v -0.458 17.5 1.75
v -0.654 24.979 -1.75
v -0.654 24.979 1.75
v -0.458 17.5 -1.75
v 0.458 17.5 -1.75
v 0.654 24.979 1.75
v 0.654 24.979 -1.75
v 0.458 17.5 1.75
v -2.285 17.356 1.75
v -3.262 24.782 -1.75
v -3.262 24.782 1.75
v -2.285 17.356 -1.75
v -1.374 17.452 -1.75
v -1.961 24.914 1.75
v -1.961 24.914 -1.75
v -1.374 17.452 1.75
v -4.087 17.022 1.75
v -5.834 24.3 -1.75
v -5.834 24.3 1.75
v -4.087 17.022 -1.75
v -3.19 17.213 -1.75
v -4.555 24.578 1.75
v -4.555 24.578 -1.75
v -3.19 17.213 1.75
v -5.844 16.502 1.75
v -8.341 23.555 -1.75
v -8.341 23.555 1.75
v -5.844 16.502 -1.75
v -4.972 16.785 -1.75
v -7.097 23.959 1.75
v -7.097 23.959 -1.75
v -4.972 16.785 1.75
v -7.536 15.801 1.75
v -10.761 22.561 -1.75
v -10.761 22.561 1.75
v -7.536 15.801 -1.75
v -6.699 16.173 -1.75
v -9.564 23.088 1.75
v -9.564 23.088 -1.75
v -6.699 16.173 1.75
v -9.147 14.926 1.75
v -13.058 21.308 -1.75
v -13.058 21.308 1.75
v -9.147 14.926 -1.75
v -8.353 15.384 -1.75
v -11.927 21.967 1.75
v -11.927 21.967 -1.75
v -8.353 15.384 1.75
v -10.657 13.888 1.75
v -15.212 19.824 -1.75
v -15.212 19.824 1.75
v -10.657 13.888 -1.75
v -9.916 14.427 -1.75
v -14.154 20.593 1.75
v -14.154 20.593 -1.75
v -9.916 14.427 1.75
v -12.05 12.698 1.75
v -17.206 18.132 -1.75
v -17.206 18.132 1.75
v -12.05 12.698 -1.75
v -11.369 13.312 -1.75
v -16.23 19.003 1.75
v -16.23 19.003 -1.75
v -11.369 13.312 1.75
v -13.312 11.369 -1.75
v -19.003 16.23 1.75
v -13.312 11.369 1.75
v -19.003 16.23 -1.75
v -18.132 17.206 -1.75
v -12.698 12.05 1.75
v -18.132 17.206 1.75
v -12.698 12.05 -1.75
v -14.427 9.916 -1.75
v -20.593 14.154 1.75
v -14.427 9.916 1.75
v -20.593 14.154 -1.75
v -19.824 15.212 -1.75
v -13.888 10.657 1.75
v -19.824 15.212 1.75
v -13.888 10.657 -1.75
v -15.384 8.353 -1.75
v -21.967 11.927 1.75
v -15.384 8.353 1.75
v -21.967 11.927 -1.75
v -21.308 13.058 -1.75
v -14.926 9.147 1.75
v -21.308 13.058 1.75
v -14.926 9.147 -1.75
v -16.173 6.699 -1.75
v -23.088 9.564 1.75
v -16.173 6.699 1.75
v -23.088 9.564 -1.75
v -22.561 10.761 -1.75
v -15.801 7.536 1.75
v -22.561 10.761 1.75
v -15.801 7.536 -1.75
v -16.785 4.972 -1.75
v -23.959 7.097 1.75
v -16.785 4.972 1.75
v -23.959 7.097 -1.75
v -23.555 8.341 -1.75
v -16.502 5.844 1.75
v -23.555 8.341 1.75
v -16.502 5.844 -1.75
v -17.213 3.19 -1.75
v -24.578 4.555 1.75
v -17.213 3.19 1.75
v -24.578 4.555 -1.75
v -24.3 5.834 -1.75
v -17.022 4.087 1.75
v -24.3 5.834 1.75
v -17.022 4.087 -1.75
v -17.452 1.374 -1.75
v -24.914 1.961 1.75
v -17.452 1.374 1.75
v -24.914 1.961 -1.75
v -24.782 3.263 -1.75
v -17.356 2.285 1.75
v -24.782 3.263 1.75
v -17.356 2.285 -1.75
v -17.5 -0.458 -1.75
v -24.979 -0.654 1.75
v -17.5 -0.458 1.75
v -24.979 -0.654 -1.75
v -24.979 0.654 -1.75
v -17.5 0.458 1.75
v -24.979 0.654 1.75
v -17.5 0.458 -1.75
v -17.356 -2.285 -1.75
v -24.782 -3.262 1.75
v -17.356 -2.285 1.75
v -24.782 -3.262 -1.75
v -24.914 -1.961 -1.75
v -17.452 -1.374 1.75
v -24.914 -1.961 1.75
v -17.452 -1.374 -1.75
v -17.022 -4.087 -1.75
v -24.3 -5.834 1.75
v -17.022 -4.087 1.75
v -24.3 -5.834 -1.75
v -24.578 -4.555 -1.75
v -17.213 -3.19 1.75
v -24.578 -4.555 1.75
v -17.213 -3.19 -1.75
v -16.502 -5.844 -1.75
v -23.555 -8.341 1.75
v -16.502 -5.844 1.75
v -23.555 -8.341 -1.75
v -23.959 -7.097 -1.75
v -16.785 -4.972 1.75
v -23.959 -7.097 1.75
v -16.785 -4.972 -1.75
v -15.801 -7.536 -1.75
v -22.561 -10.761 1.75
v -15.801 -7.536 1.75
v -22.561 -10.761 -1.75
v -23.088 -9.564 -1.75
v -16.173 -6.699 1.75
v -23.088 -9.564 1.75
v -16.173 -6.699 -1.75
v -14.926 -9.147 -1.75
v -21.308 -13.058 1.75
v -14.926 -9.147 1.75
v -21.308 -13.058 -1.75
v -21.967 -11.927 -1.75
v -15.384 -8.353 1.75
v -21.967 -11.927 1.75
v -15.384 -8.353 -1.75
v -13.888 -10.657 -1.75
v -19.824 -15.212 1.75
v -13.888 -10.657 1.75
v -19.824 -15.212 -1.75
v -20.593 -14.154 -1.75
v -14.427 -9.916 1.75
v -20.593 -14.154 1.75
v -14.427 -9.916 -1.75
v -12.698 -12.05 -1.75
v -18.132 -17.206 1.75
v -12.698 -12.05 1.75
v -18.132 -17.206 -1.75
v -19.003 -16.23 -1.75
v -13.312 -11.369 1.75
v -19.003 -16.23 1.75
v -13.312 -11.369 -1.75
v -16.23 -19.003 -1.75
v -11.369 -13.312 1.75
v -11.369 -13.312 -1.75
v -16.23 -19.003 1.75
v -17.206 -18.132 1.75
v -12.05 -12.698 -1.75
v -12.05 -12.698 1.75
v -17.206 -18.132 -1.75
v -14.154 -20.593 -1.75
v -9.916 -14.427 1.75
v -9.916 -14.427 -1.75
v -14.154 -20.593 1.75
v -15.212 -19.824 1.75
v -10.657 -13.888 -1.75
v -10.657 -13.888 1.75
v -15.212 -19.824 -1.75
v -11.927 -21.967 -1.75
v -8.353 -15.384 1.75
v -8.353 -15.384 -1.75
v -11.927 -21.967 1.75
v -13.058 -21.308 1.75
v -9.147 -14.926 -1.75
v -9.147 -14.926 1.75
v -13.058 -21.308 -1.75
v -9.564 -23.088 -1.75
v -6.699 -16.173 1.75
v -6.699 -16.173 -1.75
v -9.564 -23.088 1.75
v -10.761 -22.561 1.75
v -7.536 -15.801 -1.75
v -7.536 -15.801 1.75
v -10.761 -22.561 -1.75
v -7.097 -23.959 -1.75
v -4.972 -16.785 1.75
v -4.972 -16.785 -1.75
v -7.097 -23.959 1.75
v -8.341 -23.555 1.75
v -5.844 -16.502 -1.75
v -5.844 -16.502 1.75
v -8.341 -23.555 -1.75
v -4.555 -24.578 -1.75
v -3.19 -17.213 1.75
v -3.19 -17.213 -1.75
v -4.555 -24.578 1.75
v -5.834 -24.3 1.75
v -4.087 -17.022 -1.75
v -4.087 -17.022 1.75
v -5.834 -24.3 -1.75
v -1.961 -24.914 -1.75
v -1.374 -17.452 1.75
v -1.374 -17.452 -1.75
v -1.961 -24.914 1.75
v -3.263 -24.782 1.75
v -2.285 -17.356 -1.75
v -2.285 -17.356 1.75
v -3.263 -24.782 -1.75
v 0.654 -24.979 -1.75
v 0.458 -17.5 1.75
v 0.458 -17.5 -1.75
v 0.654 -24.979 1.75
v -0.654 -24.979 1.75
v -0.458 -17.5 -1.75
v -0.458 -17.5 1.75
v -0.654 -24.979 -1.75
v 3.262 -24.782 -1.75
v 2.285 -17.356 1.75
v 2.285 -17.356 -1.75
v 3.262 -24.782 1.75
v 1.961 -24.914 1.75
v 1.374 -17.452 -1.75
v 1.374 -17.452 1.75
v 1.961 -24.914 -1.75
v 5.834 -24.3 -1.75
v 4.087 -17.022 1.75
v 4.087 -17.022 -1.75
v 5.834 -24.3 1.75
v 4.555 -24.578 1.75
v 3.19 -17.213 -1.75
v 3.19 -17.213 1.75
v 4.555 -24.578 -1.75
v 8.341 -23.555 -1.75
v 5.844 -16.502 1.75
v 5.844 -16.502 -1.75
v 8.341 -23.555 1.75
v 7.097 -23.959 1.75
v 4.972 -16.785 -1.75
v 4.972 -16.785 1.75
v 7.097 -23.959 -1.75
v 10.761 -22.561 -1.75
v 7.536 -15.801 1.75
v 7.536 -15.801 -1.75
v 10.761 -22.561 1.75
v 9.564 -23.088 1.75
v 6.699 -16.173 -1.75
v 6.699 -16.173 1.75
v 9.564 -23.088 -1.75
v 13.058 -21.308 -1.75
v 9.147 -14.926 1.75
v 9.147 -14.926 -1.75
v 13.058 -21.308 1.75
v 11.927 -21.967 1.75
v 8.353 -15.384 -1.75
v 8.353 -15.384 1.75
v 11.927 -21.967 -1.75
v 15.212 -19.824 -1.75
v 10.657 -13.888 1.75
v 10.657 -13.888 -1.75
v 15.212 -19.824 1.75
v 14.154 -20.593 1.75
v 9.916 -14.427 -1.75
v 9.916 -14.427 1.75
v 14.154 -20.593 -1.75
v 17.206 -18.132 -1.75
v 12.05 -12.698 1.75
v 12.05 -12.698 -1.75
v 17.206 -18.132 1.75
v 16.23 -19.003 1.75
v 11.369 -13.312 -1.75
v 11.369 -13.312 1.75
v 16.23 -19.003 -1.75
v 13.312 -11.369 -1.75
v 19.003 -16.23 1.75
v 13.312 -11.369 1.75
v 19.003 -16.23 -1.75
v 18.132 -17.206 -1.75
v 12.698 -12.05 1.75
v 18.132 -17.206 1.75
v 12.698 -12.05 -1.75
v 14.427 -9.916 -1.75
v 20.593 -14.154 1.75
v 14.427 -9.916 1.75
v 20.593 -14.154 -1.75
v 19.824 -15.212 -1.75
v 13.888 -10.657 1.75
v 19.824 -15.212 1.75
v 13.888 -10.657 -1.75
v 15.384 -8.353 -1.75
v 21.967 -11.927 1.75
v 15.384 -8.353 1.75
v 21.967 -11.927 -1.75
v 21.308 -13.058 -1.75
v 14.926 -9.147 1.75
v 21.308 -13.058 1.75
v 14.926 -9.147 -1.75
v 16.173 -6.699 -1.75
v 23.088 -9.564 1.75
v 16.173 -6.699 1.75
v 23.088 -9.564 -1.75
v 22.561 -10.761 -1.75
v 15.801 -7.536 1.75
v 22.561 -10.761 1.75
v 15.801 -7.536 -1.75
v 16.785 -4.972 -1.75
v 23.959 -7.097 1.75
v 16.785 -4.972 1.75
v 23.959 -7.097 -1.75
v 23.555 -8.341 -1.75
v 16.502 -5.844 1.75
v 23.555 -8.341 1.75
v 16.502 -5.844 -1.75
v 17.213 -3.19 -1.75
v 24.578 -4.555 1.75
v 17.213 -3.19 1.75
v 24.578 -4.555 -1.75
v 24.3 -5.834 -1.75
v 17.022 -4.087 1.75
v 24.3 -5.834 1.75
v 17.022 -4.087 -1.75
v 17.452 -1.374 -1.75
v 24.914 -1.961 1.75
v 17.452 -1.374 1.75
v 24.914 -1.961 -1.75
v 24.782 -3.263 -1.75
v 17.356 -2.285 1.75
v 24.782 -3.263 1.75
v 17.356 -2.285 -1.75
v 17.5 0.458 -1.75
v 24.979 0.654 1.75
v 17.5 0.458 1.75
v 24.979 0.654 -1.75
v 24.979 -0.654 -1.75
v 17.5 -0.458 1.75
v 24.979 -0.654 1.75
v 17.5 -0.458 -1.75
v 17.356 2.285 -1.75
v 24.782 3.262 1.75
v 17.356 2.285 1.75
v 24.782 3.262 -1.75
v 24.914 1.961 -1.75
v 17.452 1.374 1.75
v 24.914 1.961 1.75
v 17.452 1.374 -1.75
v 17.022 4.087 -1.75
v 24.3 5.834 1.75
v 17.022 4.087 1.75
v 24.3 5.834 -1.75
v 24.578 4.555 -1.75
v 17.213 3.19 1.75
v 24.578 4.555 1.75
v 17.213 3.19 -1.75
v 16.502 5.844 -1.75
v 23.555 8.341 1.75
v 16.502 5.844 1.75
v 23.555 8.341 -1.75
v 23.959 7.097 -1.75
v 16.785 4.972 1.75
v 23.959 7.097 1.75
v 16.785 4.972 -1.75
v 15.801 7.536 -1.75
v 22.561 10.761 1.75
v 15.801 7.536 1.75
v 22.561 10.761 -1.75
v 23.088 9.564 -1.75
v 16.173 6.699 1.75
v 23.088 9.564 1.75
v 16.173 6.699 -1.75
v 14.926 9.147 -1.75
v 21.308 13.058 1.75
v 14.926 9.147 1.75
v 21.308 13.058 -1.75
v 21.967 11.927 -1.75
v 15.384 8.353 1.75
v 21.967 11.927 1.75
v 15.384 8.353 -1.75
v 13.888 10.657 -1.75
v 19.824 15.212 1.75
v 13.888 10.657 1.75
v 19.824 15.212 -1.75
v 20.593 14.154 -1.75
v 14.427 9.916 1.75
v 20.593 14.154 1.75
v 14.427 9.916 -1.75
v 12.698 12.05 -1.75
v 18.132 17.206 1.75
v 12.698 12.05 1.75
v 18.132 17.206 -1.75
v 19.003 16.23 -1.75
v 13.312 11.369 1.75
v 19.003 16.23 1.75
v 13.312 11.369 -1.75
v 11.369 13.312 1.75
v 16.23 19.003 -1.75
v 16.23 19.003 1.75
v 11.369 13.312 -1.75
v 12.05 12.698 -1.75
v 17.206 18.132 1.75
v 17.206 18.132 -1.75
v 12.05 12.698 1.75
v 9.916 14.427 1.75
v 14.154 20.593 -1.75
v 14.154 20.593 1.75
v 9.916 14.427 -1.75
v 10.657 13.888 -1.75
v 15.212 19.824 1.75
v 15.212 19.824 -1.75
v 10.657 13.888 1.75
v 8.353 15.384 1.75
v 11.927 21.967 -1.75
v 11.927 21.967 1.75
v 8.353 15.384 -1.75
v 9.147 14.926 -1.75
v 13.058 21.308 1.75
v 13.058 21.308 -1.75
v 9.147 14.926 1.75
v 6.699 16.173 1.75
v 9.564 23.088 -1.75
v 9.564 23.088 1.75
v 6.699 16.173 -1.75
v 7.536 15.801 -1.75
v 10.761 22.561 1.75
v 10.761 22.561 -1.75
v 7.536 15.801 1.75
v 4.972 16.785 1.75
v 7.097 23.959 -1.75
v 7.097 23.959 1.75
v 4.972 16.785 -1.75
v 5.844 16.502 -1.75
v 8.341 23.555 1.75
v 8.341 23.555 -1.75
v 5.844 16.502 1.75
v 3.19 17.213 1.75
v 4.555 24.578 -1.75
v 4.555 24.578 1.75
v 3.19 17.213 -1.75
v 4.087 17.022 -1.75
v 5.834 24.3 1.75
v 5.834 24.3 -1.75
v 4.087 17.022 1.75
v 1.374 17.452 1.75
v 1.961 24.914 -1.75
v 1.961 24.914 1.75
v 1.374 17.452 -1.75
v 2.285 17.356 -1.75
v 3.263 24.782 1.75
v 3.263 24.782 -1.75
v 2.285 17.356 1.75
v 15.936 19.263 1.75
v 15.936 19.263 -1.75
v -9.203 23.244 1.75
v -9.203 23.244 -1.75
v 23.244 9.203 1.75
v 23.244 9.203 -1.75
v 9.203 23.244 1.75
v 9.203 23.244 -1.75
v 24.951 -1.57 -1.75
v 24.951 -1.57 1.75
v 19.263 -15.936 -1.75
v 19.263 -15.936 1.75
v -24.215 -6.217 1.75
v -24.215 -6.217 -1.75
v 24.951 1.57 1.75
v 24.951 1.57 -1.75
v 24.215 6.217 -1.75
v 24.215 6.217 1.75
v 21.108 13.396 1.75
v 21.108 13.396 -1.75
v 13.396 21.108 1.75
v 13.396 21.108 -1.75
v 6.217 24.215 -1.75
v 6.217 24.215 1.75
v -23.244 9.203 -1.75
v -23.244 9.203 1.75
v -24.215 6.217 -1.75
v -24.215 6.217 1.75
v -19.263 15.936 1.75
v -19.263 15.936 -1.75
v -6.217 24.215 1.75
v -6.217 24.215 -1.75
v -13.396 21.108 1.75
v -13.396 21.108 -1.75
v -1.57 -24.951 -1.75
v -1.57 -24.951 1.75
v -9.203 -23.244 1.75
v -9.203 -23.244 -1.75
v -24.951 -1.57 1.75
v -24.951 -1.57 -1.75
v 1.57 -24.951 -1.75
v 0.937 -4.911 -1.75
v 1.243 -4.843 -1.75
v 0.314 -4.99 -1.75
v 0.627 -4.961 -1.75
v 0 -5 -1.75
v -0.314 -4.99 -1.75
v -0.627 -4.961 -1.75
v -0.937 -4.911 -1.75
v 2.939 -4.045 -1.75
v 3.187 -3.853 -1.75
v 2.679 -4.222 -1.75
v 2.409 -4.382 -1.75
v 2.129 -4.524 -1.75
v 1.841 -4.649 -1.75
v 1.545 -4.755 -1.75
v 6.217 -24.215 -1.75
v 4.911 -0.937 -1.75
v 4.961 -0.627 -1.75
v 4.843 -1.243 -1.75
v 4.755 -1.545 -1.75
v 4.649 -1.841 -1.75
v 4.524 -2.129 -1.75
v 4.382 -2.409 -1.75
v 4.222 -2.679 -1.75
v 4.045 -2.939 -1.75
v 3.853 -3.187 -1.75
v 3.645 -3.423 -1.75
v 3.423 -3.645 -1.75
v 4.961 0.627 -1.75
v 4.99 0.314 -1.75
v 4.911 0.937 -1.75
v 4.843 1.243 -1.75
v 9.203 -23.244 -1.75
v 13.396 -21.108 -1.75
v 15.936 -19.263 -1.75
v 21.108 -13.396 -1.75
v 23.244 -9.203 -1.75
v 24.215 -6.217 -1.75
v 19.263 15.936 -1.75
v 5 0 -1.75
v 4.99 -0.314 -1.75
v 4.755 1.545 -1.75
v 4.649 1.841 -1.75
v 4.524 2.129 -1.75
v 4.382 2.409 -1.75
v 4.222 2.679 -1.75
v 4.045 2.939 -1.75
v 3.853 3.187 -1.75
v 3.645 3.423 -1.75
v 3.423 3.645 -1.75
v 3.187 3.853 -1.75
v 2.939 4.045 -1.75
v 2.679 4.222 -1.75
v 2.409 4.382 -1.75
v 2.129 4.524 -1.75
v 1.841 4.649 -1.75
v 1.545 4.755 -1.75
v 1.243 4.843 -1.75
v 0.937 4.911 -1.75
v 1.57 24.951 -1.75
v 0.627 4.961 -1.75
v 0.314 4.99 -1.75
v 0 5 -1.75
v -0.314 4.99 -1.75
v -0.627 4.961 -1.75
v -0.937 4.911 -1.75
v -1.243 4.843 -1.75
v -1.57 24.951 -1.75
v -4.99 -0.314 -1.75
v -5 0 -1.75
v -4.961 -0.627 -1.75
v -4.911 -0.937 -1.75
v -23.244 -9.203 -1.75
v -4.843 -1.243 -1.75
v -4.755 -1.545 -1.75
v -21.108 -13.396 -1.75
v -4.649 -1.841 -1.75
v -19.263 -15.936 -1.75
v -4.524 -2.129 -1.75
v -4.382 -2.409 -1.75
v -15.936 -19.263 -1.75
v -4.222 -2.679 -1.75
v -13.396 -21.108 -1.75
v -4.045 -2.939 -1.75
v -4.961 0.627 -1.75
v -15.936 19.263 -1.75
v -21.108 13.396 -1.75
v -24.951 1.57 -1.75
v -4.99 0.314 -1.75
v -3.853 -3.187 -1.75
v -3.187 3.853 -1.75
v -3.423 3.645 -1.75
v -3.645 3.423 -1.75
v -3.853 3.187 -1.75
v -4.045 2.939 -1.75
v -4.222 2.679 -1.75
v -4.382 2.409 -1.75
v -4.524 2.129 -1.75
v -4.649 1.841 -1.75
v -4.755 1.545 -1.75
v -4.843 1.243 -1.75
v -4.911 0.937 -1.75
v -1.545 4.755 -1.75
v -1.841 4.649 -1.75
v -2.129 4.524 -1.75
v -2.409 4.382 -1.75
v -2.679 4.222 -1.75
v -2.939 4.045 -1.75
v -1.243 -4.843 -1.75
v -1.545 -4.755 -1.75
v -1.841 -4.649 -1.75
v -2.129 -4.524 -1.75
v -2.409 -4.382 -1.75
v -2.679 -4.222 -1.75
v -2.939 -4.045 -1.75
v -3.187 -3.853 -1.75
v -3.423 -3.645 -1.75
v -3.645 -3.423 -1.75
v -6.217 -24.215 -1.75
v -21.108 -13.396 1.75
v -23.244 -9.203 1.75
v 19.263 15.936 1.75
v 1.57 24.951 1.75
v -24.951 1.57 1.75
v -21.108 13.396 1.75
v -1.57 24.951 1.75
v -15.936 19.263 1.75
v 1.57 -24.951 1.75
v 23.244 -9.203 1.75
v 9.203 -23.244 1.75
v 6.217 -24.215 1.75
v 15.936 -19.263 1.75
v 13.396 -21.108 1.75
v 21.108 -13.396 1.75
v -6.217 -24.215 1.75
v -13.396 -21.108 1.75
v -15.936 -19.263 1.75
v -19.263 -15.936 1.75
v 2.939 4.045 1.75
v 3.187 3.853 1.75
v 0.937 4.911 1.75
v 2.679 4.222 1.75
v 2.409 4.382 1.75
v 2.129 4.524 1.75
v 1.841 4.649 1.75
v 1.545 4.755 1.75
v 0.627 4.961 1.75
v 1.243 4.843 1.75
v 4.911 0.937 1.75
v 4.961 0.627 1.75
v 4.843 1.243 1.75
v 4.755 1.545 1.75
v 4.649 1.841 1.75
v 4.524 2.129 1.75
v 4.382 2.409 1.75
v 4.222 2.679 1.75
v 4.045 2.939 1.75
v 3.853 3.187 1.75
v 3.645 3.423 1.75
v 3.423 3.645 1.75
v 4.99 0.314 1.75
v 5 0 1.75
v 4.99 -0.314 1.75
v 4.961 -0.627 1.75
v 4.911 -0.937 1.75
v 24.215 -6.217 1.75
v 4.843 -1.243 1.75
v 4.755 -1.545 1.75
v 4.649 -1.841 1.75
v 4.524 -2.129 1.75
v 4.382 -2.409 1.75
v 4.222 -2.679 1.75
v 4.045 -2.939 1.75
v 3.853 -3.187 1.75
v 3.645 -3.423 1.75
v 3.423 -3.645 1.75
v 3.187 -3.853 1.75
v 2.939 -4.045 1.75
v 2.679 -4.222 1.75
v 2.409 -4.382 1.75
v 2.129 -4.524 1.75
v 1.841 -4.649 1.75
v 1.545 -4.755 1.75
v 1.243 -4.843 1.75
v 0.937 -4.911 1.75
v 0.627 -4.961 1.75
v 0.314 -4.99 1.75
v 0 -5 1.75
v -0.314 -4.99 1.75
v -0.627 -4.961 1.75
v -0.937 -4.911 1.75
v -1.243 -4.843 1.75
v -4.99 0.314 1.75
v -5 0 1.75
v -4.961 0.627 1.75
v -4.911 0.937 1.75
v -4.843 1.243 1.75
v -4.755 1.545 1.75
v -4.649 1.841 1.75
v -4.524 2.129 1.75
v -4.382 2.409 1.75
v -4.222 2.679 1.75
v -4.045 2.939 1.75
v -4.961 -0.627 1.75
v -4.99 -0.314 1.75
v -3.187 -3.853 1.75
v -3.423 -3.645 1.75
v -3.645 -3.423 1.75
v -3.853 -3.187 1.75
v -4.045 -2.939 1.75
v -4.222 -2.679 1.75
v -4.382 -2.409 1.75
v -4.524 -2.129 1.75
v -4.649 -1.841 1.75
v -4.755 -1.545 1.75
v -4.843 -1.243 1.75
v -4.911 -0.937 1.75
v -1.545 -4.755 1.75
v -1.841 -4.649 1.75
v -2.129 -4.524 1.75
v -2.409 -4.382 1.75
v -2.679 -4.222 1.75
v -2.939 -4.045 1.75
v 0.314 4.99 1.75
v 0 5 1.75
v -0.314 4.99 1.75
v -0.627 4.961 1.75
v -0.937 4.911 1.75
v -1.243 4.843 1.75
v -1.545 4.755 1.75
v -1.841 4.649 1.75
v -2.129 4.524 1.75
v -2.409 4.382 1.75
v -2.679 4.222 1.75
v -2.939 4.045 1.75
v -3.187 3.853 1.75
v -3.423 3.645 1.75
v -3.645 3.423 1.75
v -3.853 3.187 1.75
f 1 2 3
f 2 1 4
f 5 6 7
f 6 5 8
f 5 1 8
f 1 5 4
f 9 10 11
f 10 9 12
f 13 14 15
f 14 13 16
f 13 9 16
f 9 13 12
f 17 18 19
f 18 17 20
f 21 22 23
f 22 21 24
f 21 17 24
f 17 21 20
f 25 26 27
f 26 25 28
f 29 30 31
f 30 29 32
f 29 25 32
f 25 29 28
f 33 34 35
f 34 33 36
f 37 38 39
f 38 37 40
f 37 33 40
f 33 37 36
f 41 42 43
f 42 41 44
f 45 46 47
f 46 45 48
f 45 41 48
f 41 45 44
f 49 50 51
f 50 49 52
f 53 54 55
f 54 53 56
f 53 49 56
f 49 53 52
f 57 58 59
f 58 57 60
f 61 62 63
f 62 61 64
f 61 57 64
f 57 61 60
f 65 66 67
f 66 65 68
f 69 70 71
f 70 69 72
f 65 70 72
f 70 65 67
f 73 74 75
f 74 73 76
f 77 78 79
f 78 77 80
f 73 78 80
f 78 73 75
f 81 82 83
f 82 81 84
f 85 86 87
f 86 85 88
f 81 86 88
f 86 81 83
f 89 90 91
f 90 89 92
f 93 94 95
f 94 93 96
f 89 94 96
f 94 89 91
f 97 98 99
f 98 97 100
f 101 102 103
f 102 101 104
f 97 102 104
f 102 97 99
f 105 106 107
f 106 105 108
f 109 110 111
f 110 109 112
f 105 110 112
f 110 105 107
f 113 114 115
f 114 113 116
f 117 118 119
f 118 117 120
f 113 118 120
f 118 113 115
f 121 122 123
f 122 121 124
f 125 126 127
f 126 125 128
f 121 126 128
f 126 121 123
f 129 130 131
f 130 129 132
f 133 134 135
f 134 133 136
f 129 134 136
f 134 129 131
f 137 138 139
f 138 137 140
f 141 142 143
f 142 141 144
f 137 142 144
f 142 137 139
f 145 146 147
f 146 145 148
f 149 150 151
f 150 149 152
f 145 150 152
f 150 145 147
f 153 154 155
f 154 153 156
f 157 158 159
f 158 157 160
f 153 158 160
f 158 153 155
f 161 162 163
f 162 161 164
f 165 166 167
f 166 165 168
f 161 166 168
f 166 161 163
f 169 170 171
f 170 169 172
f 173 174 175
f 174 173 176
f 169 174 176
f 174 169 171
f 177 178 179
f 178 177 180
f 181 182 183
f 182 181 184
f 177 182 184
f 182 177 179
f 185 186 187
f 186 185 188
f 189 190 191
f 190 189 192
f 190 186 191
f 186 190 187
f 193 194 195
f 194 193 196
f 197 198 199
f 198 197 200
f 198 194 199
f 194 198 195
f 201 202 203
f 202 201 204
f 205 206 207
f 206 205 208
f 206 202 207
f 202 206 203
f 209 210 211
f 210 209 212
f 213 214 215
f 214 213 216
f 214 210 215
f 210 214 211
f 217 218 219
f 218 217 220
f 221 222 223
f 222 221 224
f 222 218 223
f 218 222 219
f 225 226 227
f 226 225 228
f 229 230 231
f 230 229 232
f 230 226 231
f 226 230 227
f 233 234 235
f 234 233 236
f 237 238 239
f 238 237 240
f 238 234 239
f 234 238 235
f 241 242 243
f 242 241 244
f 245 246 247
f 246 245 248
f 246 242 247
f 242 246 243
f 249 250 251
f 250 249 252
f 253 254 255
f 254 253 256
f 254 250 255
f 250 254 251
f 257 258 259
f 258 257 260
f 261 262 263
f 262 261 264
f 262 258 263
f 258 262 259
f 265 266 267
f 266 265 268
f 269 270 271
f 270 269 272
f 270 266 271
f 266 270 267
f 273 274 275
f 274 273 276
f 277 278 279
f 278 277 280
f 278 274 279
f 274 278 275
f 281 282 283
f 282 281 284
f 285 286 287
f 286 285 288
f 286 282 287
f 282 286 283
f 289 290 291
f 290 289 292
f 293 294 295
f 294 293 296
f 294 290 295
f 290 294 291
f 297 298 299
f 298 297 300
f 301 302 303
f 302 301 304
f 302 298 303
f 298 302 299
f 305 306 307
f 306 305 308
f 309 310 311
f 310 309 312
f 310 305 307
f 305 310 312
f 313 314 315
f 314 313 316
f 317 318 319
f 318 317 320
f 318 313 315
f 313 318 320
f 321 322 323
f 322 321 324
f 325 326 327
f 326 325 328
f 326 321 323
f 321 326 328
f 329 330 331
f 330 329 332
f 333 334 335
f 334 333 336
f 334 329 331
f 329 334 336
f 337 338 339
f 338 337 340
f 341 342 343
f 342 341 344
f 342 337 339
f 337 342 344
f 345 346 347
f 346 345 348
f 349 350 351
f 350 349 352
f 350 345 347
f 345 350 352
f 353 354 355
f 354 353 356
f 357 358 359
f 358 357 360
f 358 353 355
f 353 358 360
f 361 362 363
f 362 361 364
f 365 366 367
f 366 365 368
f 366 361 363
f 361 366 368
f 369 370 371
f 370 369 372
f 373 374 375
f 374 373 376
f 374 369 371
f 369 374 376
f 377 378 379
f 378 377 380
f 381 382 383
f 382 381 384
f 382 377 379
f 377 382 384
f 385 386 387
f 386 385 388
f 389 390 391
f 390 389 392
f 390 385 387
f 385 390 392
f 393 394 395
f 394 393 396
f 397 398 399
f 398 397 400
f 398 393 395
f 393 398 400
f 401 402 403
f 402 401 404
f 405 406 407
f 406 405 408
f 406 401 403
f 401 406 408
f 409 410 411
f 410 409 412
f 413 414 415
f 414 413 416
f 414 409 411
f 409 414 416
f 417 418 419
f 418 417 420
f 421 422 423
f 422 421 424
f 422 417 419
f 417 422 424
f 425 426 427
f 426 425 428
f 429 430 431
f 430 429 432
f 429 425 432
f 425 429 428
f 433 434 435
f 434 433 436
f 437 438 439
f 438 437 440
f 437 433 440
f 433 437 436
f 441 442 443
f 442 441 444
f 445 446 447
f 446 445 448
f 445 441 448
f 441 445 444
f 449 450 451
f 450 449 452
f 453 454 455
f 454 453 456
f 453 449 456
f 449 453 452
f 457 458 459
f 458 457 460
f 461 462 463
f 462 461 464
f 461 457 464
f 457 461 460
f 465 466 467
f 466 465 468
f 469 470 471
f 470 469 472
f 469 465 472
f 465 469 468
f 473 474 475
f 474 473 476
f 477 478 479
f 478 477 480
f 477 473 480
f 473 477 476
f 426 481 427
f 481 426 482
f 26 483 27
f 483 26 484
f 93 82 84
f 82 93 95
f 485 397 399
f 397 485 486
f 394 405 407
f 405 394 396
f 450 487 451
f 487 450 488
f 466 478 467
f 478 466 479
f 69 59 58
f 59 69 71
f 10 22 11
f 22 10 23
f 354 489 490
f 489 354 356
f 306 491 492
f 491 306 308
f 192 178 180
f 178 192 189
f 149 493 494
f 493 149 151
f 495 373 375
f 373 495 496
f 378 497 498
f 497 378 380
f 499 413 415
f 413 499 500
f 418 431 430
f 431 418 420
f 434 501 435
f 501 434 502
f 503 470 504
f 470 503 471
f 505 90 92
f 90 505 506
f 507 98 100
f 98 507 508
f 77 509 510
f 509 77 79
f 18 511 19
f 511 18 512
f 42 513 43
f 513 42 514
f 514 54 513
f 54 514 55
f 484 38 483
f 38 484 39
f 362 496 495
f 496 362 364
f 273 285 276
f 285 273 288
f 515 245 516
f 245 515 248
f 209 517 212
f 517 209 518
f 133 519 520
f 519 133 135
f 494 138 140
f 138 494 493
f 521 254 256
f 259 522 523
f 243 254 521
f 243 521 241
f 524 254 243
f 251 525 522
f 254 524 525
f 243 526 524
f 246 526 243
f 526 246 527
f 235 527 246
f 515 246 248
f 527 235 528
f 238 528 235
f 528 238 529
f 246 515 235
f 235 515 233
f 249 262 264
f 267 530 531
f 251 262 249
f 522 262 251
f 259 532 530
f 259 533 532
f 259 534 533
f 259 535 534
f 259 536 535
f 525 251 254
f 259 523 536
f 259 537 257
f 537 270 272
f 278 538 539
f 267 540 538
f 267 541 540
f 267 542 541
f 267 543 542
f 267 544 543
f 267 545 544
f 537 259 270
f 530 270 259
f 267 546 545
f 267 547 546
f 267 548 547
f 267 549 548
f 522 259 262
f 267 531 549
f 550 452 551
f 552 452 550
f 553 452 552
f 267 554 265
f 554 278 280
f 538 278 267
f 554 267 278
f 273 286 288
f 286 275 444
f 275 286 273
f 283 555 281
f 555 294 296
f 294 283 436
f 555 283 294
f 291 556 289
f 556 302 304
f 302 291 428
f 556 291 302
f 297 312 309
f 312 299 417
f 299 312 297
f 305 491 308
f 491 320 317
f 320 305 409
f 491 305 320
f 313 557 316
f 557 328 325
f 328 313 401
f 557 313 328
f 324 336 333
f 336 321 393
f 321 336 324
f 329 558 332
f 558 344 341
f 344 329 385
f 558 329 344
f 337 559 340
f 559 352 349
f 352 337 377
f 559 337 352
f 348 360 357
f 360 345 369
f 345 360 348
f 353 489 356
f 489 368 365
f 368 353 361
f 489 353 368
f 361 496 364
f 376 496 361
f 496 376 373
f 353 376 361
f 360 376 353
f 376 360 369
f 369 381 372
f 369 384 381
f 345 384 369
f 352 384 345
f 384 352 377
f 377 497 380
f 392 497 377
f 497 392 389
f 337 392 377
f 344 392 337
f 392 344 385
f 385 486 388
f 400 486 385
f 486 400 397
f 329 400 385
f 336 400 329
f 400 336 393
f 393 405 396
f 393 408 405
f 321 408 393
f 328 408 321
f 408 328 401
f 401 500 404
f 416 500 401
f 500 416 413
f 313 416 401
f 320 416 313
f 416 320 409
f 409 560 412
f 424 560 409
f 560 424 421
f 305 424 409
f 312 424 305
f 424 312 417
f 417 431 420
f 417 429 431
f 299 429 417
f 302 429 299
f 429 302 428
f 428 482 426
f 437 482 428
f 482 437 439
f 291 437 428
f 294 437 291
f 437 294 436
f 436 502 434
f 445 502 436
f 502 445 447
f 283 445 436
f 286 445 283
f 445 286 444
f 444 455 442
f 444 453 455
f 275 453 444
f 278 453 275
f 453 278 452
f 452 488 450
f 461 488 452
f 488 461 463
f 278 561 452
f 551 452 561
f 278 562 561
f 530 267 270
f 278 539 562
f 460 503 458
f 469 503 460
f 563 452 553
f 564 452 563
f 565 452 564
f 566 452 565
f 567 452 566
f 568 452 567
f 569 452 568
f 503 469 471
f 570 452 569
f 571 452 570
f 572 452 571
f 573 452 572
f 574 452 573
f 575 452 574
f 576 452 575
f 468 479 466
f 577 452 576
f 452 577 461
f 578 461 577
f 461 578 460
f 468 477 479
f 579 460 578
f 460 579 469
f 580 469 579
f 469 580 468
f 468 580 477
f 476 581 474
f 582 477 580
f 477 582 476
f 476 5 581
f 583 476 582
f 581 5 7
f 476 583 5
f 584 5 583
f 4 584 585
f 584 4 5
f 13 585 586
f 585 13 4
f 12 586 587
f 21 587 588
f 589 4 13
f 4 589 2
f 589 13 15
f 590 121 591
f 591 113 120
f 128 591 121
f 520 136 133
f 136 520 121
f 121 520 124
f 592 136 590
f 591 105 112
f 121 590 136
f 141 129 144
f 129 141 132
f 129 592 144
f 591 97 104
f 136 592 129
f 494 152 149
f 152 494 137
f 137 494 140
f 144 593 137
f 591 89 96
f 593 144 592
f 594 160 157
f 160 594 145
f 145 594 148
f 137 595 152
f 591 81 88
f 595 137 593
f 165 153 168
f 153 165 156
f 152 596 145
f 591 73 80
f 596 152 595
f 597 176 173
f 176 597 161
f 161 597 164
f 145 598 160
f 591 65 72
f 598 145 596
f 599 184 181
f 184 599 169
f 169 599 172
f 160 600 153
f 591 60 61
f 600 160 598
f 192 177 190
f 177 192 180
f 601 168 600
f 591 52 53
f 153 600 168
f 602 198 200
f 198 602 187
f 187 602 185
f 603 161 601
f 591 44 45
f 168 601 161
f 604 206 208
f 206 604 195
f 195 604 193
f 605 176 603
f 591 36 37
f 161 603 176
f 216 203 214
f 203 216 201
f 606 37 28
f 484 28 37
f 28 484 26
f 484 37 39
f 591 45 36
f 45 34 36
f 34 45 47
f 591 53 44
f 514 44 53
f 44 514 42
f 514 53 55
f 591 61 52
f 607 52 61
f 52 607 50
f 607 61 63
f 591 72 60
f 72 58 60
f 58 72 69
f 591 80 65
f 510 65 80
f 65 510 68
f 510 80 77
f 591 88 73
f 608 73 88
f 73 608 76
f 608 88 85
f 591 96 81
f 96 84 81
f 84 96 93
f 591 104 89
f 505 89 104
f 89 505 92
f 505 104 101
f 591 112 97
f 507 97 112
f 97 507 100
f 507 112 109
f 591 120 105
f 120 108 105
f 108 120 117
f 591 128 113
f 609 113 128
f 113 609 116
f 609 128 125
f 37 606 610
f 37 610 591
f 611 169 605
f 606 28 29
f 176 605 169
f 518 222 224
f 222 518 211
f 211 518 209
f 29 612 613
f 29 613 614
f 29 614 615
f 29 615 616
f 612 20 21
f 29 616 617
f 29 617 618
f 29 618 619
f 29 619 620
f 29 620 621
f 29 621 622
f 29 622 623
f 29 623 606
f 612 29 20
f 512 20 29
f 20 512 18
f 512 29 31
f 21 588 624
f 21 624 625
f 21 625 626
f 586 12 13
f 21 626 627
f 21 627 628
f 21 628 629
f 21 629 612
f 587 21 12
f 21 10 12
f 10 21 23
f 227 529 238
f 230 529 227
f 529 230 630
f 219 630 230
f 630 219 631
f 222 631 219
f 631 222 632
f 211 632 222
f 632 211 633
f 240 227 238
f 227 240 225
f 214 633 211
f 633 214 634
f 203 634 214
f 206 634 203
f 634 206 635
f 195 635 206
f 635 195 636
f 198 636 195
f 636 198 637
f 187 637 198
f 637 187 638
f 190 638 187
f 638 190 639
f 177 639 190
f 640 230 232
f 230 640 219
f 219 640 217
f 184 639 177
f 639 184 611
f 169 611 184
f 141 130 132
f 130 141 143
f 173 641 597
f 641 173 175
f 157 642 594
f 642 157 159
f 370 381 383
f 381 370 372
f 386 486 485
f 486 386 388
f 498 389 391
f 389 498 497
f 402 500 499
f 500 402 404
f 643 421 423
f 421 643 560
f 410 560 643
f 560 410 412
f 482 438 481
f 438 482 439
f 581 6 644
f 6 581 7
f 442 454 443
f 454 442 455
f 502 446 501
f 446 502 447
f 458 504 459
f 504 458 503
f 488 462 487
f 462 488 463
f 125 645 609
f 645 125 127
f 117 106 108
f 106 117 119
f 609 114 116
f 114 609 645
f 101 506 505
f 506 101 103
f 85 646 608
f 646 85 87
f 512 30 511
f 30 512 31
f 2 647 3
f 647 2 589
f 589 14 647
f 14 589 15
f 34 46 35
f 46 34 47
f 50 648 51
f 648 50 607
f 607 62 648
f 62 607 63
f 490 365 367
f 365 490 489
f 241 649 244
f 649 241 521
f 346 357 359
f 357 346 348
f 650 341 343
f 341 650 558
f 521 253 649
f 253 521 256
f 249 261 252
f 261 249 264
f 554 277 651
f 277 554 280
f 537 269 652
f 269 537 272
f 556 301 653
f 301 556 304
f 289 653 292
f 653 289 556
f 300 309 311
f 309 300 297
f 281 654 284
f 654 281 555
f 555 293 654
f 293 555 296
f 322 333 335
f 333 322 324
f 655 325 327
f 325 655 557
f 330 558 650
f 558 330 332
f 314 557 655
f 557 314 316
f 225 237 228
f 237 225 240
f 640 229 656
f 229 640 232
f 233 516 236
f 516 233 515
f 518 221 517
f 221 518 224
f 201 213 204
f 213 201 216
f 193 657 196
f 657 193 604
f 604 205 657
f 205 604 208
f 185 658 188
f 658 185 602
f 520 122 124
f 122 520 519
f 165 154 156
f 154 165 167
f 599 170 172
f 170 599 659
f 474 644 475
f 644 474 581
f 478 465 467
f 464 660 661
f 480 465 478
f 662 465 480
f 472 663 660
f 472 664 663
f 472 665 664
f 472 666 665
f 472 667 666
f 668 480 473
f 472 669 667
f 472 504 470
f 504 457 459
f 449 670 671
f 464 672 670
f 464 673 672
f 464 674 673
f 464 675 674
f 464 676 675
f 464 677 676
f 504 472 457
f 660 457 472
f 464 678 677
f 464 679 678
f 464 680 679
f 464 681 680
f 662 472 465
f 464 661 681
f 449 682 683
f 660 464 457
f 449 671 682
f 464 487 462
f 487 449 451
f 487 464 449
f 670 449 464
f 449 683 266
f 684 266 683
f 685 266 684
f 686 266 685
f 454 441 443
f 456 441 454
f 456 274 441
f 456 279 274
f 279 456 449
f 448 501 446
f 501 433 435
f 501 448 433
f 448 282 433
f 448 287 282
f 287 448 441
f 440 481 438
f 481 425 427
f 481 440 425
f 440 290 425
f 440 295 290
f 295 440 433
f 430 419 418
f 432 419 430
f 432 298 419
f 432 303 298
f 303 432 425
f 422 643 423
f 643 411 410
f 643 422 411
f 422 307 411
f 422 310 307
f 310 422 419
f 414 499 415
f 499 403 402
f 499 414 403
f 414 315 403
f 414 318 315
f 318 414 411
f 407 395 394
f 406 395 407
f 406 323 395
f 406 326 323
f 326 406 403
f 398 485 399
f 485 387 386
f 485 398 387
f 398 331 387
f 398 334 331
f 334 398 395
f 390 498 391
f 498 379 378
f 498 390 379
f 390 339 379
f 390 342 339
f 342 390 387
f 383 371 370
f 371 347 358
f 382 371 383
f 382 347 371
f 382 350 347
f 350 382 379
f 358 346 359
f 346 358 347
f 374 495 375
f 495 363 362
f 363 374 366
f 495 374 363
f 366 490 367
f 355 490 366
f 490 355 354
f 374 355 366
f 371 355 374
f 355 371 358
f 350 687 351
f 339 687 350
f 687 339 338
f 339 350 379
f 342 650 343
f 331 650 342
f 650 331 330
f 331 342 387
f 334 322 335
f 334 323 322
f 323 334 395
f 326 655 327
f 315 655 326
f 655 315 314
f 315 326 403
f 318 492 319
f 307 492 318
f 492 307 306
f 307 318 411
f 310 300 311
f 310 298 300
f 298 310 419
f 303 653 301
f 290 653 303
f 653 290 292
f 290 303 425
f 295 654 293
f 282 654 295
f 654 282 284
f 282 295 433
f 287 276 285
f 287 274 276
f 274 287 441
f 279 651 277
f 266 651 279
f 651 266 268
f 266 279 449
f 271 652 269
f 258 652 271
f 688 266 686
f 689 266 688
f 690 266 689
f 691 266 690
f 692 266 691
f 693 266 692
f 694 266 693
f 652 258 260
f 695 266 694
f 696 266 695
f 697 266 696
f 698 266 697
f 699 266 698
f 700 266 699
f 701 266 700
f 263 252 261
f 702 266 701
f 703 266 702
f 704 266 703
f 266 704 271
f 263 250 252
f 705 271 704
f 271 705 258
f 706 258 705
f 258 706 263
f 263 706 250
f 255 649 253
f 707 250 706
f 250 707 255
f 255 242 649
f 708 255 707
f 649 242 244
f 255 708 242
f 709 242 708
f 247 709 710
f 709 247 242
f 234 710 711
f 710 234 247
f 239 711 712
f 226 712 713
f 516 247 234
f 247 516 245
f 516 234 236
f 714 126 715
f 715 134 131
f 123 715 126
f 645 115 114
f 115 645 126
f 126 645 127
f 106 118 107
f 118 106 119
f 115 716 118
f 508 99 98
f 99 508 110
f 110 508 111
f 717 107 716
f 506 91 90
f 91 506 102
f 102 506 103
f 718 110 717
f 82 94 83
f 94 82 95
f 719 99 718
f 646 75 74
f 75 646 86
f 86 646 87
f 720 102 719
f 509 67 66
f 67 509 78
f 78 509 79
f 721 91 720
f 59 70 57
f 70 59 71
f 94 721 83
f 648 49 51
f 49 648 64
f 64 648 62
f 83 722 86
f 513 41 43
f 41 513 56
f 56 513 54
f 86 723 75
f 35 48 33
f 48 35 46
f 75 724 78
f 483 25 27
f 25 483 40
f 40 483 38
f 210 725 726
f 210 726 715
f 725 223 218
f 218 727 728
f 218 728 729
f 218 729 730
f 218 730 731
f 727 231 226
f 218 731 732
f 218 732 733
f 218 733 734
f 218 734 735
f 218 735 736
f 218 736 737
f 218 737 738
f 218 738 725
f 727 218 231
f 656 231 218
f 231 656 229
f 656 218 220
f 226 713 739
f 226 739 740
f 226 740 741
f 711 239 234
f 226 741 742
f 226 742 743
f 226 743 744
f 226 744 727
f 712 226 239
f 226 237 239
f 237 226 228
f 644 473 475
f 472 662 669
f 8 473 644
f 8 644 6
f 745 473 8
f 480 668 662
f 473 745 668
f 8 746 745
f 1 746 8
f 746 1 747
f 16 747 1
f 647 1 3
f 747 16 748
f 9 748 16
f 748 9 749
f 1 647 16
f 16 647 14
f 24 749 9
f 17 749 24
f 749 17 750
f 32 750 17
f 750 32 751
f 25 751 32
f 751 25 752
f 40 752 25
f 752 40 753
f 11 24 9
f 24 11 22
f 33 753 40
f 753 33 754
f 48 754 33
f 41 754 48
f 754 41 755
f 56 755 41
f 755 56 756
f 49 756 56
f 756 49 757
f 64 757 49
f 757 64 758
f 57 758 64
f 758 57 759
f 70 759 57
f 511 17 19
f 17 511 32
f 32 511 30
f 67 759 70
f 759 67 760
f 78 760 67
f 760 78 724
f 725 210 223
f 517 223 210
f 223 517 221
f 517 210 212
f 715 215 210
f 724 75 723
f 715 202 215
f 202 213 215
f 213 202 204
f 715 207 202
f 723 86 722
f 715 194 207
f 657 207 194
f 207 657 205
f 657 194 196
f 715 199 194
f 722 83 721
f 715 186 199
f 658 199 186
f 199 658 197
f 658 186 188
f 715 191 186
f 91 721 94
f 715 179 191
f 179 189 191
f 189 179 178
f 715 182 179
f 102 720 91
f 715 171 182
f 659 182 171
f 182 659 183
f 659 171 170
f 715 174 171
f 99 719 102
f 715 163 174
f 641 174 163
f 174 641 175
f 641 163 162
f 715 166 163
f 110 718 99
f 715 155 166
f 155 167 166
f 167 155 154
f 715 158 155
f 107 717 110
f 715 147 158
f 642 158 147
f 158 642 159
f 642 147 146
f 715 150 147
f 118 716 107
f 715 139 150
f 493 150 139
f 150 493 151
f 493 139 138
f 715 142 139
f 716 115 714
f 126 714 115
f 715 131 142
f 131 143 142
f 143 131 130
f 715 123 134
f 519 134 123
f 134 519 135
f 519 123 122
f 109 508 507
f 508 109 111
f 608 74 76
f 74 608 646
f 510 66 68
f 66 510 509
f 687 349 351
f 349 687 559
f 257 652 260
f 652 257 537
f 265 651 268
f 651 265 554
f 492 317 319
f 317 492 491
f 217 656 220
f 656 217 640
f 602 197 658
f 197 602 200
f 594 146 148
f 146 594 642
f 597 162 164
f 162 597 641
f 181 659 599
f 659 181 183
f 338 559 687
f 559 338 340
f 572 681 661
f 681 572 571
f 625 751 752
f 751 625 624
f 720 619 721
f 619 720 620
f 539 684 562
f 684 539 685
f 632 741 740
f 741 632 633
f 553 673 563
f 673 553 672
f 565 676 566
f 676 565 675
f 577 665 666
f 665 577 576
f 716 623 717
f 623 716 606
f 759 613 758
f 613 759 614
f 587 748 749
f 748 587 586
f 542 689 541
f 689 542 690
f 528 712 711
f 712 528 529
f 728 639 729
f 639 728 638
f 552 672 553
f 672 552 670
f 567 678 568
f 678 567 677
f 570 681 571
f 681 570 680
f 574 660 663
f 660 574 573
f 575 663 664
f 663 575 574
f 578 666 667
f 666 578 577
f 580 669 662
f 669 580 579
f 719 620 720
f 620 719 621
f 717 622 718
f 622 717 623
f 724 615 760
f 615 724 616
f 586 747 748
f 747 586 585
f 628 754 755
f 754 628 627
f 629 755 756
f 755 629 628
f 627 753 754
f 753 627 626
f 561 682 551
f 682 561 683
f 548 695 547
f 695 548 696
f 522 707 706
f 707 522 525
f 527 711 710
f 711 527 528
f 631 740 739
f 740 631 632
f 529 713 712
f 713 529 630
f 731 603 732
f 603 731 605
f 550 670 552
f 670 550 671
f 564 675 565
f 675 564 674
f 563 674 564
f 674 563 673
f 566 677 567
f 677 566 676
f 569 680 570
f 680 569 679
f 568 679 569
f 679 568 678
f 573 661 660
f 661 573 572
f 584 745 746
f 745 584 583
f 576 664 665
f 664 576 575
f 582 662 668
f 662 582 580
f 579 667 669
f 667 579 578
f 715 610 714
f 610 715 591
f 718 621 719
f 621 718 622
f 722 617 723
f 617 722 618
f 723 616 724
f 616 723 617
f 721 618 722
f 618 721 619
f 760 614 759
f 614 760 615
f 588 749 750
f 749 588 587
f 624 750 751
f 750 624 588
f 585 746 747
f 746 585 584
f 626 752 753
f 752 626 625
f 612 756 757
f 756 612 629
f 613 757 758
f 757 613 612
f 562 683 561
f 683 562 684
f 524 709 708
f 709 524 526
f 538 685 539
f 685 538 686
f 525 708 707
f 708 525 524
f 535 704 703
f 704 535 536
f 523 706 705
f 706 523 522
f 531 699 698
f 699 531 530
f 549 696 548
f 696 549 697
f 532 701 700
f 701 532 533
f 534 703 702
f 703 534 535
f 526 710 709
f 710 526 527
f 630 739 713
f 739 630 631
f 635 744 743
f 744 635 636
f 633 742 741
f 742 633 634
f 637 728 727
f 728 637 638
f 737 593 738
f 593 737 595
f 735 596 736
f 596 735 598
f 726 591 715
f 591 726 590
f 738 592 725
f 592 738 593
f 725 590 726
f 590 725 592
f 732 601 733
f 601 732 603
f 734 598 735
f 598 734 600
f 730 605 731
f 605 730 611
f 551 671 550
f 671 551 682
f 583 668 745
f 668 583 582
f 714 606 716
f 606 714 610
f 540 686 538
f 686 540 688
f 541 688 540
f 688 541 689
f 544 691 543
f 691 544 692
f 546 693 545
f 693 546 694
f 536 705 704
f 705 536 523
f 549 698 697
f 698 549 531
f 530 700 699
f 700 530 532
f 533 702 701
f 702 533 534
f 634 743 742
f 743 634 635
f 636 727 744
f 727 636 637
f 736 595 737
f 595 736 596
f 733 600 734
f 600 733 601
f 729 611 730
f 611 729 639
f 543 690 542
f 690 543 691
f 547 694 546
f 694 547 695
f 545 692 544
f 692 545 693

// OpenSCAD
// Coil winder timing wheel

wheel_radius         = 25.0;
wheel_thickness      =  3.5;
wheel_centre_hole_r =  5.0;
wheel_slot_length    =  7.5;
//wheel_slot_width    =   1.0;
wheel_slot_n         = 60.0;
wheel_slot_width_outer = (PI / wheel_slot_n) * wheel_radius;
wheel_slot_width_inner = (PI / wheel_slot_n) * (wheel_radius - wheel_slot_length);

difference() {
    cylinder( r = wheel_radius, h = wheel_thickness, center = true, $fn = 100);
    cylinder( r = wheel_centre_hole_r, h = wheel_thickness + 2.0, center = true, $fn = 100);
    for (i = [ 0 : (360.0 / wheel_slot_n) : 360.0]) {
        rotate(a = i, v = [0,0,1]) {
            translate([- wheel_slot_width_inner / 2.0, wheel_radius - wheel_slot_length, -wheel_thickness / 2.0 - 1.0]) {
                //cube([wheel_slot_length, wheel_slot_width_inner, wheel_thickness], center = true);
                trapezoid(wheel_slot_width_inner, wheel_slot_width_outer, wheel_slot_length, wheel_thickness + 2.0);
            }
        }
    }
}

module trapezoid(width_base, width_top,height,thickness) {

  linear_extrude(height = thickness) polygon(points=[[0,0],[width_base,0],[width_base-(width_base-width_top)/2,height],[(width_base-width_top)/2,height]], paths=[[0,1,2,3]]); 
  
}
